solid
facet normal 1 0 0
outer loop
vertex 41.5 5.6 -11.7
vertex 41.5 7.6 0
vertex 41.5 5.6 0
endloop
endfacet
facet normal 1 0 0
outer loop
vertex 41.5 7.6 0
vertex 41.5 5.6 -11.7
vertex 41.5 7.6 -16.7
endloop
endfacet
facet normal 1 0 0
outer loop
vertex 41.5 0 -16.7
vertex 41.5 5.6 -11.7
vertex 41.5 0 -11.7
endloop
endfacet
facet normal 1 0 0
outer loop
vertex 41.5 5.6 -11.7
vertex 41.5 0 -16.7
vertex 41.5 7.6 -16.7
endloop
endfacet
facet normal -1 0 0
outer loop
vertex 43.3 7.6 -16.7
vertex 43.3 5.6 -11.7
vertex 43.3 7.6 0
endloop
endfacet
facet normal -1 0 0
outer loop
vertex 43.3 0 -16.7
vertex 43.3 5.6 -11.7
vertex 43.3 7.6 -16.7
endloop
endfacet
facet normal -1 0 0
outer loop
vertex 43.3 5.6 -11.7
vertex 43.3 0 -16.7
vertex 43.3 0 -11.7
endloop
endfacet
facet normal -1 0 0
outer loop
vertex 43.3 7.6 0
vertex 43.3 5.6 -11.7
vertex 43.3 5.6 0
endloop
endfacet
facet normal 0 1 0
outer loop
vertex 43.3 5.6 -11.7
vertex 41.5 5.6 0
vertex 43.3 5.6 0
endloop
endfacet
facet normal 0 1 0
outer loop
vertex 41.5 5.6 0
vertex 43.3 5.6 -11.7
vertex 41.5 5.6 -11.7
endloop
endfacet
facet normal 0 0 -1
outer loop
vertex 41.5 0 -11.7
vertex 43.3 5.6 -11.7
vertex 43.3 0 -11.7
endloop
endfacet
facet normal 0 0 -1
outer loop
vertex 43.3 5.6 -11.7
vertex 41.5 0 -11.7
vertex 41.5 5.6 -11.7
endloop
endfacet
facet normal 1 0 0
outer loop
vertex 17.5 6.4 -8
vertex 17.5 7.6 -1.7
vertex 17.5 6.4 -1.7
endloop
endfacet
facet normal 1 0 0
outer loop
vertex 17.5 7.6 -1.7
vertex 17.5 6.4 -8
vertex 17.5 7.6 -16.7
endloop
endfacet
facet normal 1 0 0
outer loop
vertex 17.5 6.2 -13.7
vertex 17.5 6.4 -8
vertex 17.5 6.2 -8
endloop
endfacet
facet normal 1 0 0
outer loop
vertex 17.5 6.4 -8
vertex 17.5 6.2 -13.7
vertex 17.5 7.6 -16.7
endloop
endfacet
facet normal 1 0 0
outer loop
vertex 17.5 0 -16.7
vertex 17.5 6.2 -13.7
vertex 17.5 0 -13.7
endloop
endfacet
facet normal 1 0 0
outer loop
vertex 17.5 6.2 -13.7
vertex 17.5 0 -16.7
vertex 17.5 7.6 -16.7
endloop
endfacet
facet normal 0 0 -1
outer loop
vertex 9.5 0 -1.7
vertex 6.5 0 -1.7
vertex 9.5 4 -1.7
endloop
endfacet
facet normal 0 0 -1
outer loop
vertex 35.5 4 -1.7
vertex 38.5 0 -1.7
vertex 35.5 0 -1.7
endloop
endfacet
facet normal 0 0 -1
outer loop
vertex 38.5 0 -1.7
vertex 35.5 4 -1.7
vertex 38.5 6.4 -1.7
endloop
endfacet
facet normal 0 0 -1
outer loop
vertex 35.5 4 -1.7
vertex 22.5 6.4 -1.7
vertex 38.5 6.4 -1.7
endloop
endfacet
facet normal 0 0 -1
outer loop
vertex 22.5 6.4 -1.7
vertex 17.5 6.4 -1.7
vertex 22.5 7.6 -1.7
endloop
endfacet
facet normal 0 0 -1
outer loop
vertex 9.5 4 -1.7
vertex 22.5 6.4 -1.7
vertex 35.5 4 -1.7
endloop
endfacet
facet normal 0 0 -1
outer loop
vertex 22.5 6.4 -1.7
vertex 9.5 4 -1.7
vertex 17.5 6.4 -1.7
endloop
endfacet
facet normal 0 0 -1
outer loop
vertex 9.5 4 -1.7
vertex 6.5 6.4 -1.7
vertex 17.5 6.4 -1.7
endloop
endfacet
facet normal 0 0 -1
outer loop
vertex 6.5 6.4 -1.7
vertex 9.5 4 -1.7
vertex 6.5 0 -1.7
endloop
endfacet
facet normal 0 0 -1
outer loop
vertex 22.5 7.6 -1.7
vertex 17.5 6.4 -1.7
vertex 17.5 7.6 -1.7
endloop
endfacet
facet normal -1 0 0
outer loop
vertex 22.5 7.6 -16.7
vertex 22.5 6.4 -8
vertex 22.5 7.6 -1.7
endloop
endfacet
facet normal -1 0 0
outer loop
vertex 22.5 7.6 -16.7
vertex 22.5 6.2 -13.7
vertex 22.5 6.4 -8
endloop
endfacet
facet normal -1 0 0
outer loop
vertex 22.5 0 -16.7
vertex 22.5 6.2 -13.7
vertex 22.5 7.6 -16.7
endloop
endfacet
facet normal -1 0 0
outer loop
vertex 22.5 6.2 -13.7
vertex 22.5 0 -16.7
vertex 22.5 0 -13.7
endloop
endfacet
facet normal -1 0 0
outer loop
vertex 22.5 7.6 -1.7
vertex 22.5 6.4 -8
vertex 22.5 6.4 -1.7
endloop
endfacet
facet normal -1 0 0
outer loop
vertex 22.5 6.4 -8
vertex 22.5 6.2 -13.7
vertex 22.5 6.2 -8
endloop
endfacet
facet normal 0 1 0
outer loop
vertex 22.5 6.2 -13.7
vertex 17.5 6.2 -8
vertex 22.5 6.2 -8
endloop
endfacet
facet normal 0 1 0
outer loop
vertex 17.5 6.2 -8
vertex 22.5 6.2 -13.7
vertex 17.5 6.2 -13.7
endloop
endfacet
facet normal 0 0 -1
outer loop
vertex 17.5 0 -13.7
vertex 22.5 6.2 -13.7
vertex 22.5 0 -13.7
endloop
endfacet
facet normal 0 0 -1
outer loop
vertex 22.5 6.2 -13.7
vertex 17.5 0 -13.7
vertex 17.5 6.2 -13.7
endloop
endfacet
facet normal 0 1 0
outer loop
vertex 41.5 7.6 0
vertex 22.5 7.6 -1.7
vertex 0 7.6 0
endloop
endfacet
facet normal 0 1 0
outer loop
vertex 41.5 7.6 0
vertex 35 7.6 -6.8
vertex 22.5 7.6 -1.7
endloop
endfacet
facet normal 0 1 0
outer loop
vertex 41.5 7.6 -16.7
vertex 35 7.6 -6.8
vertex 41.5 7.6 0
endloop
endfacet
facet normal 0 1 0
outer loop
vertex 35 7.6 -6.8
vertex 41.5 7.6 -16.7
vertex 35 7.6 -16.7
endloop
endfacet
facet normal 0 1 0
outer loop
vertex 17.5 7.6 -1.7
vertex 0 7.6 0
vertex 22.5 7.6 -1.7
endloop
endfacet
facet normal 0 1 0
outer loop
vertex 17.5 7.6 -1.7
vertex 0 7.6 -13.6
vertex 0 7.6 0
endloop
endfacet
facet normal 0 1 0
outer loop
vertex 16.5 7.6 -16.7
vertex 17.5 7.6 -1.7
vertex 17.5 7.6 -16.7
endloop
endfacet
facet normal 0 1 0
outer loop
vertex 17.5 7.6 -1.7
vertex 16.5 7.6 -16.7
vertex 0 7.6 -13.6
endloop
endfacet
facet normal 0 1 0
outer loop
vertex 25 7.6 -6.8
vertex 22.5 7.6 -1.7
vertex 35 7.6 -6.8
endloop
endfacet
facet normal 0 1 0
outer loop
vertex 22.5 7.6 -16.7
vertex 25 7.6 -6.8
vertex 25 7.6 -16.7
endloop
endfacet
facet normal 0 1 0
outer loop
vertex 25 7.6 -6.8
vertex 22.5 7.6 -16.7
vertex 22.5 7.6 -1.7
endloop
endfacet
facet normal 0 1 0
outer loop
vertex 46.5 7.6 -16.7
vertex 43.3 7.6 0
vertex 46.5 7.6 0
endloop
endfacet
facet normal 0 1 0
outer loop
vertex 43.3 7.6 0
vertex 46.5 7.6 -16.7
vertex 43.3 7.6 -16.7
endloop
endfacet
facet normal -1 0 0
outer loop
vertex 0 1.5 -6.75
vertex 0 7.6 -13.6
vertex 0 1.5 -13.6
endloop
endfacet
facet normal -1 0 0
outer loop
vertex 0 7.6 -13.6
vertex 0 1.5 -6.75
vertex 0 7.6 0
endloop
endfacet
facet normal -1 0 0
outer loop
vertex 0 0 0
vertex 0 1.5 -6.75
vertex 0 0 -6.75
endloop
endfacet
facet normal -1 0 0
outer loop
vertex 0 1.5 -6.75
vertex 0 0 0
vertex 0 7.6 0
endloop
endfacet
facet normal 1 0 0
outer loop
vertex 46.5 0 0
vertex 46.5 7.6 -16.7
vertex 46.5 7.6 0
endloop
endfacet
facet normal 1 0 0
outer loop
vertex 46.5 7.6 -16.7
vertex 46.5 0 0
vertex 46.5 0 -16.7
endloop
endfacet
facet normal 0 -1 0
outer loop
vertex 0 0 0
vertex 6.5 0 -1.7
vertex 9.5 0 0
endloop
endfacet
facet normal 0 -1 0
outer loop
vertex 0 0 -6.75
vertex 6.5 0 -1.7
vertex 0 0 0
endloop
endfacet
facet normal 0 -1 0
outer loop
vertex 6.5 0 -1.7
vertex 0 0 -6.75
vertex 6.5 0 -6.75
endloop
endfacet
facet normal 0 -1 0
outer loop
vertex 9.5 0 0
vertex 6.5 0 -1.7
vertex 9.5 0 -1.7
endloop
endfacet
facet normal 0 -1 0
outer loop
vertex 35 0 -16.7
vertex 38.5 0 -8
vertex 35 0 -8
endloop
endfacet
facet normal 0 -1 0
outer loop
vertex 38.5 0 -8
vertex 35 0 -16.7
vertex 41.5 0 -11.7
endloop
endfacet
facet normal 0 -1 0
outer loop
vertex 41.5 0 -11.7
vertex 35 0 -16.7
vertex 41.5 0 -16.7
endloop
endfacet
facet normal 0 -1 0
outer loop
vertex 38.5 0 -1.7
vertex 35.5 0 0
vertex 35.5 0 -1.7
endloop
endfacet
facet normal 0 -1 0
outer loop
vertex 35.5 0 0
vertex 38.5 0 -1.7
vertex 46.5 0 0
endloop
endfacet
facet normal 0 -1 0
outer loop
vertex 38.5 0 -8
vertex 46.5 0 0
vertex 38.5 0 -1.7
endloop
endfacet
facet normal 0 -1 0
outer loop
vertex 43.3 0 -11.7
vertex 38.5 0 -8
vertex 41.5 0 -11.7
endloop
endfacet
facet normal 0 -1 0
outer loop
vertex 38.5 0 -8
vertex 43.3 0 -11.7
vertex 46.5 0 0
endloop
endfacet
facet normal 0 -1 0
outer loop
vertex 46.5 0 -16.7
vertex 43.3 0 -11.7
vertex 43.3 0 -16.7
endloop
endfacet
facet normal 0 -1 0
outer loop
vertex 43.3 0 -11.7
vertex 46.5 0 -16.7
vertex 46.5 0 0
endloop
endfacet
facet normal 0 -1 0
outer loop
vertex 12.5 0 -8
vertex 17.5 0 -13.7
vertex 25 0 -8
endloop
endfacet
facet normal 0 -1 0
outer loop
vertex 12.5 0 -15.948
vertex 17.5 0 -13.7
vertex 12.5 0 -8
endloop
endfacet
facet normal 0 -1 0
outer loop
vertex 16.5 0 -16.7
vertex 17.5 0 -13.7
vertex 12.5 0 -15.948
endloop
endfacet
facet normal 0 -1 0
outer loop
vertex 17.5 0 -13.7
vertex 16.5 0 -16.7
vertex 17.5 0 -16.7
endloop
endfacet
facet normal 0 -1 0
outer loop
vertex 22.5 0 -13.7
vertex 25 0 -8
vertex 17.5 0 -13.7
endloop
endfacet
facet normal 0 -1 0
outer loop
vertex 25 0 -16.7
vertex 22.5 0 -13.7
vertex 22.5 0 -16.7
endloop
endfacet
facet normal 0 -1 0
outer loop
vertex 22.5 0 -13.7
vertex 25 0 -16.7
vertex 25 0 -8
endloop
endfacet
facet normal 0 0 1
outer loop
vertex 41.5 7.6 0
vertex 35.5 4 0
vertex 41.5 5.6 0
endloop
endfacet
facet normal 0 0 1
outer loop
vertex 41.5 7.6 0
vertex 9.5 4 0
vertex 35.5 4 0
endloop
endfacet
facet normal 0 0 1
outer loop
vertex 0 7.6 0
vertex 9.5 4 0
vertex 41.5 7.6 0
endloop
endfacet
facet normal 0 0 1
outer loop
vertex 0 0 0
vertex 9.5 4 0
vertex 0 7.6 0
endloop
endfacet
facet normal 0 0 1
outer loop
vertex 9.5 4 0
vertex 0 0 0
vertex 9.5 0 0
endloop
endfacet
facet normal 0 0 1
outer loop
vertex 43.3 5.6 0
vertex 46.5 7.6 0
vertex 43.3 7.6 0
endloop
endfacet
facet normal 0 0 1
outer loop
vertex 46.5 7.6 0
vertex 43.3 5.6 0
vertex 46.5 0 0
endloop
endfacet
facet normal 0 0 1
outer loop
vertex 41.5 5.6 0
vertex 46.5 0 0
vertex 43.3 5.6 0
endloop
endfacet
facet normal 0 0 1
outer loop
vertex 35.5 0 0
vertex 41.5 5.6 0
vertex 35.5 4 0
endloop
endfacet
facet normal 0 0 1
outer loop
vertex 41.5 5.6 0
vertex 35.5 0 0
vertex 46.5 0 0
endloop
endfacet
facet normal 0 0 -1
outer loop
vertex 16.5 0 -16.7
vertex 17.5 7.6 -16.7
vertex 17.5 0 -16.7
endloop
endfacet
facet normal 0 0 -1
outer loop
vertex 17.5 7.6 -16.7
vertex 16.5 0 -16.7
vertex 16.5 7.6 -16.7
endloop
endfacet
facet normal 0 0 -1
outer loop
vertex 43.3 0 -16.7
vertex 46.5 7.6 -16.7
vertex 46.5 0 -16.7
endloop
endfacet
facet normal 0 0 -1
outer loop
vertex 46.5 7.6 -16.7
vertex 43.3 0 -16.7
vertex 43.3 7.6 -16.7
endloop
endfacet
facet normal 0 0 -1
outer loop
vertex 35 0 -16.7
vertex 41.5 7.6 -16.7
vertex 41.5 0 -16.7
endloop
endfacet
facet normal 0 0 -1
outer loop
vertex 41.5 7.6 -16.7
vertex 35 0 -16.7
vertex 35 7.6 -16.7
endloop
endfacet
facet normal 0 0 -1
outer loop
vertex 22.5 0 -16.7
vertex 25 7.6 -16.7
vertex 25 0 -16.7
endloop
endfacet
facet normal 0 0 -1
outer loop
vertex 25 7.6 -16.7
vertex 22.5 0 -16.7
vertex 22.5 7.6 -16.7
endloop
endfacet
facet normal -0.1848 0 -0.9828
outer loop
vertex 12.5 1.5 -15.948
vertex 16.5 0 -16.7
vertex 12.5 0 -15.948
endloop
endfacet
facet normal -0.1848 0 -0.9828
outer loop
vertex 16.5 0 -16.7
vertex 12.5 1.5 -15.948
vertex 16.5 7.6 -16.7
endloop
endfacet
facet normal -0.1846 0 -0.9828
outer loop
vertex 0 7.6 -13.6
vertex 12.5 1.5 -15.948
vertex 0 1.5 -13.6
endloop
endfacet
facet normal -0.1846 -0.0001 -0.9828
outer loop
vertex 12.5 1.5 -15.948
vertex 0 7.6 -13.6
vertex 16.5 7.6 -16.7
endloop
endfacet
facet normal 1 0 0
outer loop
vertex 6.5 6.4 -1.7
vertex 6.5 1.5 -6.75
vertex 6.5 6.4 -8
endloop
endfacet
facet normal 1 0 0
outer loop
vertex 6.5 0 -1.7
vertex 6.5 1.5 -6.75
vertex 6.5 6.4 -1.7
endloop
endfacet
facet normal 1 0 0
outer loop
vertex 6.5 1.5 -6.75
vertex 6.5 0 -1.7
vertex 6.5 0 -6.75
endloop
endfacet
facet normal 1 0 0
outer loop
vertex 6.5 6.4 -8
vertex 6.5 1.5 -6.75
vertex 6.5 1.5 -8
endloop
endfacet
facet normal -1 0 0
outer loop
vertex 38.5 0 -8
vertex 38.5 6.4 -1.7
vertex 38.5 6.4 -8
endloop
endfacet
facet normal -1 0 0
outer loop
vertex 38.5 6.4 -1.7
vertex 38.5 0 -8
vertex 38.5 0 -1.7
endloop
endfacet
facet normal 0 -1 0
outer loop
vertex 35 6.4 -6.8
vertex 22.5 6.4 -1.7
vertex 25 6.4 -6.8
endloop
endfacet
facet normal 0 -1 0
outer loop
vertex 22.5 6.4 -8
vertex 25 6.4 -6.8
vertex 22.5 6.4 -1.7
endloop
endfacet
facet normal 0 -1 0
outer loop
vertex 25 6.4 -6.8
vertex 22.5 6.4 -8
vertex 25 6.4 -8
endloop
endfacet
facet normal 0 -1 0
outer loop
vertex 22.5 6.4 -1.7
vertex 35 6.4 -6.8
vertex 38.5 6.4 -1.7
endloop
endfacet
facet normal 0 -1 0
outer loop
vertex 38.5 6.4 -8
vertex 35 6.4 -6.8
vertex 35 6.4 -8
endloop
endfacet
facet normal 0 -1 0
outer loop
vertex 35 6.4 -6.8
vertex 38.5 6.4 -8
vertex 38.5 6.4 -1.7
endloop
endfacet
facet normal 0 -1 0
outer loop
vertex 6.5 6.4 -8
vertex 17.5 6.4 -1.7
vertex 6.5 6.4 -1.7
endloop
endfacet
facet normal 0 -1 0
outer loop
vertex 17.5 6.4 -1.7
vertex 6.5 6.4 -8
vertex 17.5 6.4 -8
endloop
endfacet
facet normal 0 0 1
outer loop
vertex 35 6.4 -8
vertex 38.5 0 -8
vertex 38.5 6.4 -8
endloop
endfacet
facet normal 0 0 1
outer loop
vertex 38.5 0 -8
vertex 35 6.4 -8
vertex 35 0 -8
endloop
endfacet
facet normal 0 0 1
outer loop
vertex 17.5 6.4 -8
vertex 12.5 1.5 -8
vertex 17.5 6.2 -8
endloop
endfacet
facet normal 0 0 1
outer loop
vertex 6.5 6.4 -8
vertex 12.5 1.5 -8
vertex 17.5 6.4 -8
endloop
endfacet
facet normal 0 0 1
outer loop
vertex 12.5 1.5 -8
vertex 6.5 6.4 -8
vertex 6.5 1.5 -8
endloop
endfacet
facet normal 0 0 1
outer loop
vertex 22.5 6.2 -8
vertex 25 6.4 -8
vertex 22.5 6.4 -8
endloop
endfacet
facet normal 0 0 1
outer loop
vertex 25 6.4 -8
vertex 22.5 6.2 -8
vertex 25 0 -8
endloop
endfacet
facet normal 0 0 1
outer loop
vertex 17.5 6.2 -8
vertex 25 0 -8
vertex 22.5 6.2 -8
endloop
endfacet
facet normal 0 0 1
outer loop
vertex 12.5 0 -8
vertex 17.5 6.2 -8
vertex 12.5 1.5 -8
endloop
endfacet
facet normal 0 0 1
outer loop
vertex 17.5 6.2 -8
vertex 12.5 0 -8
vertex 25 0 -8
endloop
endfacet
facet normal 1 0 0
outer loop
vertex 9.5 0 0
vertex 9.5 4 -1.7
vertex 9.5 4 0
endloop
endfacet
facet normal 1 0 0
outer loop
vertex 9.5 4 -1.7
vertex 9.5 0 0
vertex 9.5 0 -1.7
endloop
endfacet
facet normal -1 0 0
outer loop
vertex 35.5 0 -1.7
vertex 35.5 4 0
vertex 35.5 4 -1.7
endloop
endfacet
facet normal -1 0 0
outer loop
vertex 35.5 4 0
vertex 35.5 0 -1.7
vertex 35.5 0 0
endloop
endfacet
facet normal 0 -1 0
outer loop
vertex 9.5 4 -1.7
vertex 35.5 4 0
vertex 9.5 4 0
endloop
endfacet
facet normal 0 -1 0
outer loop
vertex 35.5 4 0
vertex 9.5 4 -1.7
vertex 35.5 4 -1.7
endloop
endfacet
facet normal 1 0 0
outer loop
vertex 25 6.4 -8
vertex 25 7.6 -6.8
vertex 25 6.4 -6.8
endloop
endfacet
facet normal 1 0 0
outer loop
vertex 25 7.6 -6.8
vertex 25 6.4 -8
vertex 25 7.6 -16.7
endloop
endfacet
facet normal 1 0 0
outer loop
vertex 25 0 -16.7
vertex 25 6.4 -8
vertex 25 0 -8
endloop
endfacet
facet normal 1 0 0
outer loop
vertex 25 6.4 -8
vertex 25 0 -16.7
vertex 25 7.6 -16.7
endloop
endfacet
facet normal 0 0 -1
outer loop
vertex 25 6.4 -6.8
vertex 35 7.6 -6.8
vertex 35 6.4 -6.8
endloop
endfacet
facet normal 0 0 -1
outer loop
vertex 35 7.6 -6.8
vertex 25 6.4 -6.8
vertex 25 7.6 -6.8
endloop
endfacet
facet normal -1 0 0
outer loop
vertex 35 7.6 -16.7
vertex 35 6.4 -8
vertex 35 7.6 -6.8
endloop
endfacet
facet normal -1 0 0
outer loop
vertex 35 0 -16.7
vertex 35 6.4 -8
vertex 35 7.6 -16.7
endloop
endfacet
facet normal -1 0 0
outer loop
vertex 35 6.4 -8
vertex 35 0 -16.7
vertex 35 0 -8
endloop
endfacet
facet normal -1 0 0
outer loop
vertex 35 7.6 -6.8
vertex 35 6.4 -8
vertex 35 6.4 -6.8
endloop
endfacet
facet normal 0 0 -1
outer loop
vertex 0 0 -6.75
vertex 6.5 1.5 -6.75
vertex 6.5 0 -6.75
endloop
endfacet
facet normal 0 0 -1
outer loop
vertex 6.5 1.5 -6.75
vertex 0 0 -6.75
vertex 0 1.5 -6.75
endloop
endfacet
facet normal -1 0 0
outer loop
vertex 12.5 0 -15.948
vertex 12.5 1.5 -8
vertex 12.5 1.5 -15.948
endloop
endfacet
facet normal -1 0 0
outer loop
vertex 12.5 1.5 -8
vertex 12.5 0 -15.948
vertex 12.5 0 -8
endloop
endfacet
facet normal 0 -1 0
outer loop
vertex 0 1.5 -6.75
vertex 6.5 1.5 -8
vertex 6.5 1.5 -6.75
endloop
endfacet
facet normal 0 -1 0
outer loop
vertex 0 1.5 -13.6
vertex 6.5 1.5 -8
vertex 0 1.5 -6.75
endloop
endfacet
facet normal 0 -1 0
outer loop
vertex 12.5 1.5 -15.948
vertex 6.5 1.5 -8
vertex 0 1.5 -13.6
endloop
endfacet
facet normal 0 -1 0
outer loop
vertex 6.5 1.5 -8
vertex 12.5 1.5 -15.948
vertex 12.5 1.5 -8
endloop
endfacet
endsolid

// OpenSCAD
xNotchPos = 41.5;
xNotchSize = 1.8;
yNotchSize = 2;
zNotchSize = 5;

xRampPos = 16.5;
xTotal = xNotchPos+5;
yTotal = 7.6;
zLeft = -13.6;
zRight = -16.7;

xInnerSlotSize = 32;
xInnerSlotPos = 6.5;
yInnerSlotSize = 6.5;
yInnerSlotPos = -.1; //(yTotal - yInnerSlotSize)/2;
zInnerSlotSize = 6.3;

xTabSize = 3;
xOuterSlotSize = xInnerSlotSize - 2 * xTabSize;
xOuterSlotPos = xInnerSlotPos+xTabSize;

zSlotPos = 8;

xNubSize = 10;
xNubPos = 25;
zNubSize = 10;

xleftLugSize = 12.5;
yLeftLugSize = 1.5;
zLeftLugPos = -6.75;

xWiringPos = xRampPos+1;
xWiringSize = 5;
yWiringSize = 1.5;
yWiringPos = yTotal-yWiringSize+0.1;
zWiringSize = 3; //zSlotPos+zInnerSlotSize;

zMore = 20;



module main() {

    difference() {
        outer();
        inner_slot();
        outer_slot();
        notch();
        nub();
        left_lug();
        wiring();
        }

}

module outer() {
    rotate([90,0,0])
        translate([0,0,-yTotal])
            linear_extrude(height=yTotal)
                polygon([[0,0], [xTotal,0], [xTotal,zRight], [xRampPos,zRight], [0,zLeft]]);
}

module notch() {
    translate([xNotchPos, yTotal-yNotchSize, -zMore])
        cube([xNotchSize, yNotchSize+.1, zMore+.1]);
    translate([xNotchPos, -0.1, zRight-.1])
        cube([xNotchSize, yTotal+.2, zNotchSize+.1]);
}

module inner_slot() {
    translate([xInnerSlotPos, yInnerSlotPos, -zSlotPos])
        cube([xInnerSlotSize, yInnerSlotSize, zInnerSlotSize]);
}

module outer_slot() {
    translate([xOuterSlotPos, -1, -zSlotPos+.1])
        cube([xOuterSlotSize, 5, zSlotPos+.1]);
}

module nub() {
    translate([xNubPos, -.1, zRight-.1])
        cube([xNubSize,yTotal+.2,zNubSize]);
}

module left_lug() {
    translate([-.1, -.1, zLeftLugPos-10])
        cube([xleftLugSize+.1, yLeftLugSize+.1, 10]);
}

module wiring() {
    // vertical
    translate([xWiringPos, yWiringPos, zInnerSlotSize-zSlotPos-zMore-.1])
        cube([xWiringSize, yWiringSize, zMore+.1]);
    // horizontal
    translate([xWiringPos, -0.1, zRight-.1])
        cube([xWiringSize, yWiringPos+.2, zWiringSize+.1]);
}
main();
